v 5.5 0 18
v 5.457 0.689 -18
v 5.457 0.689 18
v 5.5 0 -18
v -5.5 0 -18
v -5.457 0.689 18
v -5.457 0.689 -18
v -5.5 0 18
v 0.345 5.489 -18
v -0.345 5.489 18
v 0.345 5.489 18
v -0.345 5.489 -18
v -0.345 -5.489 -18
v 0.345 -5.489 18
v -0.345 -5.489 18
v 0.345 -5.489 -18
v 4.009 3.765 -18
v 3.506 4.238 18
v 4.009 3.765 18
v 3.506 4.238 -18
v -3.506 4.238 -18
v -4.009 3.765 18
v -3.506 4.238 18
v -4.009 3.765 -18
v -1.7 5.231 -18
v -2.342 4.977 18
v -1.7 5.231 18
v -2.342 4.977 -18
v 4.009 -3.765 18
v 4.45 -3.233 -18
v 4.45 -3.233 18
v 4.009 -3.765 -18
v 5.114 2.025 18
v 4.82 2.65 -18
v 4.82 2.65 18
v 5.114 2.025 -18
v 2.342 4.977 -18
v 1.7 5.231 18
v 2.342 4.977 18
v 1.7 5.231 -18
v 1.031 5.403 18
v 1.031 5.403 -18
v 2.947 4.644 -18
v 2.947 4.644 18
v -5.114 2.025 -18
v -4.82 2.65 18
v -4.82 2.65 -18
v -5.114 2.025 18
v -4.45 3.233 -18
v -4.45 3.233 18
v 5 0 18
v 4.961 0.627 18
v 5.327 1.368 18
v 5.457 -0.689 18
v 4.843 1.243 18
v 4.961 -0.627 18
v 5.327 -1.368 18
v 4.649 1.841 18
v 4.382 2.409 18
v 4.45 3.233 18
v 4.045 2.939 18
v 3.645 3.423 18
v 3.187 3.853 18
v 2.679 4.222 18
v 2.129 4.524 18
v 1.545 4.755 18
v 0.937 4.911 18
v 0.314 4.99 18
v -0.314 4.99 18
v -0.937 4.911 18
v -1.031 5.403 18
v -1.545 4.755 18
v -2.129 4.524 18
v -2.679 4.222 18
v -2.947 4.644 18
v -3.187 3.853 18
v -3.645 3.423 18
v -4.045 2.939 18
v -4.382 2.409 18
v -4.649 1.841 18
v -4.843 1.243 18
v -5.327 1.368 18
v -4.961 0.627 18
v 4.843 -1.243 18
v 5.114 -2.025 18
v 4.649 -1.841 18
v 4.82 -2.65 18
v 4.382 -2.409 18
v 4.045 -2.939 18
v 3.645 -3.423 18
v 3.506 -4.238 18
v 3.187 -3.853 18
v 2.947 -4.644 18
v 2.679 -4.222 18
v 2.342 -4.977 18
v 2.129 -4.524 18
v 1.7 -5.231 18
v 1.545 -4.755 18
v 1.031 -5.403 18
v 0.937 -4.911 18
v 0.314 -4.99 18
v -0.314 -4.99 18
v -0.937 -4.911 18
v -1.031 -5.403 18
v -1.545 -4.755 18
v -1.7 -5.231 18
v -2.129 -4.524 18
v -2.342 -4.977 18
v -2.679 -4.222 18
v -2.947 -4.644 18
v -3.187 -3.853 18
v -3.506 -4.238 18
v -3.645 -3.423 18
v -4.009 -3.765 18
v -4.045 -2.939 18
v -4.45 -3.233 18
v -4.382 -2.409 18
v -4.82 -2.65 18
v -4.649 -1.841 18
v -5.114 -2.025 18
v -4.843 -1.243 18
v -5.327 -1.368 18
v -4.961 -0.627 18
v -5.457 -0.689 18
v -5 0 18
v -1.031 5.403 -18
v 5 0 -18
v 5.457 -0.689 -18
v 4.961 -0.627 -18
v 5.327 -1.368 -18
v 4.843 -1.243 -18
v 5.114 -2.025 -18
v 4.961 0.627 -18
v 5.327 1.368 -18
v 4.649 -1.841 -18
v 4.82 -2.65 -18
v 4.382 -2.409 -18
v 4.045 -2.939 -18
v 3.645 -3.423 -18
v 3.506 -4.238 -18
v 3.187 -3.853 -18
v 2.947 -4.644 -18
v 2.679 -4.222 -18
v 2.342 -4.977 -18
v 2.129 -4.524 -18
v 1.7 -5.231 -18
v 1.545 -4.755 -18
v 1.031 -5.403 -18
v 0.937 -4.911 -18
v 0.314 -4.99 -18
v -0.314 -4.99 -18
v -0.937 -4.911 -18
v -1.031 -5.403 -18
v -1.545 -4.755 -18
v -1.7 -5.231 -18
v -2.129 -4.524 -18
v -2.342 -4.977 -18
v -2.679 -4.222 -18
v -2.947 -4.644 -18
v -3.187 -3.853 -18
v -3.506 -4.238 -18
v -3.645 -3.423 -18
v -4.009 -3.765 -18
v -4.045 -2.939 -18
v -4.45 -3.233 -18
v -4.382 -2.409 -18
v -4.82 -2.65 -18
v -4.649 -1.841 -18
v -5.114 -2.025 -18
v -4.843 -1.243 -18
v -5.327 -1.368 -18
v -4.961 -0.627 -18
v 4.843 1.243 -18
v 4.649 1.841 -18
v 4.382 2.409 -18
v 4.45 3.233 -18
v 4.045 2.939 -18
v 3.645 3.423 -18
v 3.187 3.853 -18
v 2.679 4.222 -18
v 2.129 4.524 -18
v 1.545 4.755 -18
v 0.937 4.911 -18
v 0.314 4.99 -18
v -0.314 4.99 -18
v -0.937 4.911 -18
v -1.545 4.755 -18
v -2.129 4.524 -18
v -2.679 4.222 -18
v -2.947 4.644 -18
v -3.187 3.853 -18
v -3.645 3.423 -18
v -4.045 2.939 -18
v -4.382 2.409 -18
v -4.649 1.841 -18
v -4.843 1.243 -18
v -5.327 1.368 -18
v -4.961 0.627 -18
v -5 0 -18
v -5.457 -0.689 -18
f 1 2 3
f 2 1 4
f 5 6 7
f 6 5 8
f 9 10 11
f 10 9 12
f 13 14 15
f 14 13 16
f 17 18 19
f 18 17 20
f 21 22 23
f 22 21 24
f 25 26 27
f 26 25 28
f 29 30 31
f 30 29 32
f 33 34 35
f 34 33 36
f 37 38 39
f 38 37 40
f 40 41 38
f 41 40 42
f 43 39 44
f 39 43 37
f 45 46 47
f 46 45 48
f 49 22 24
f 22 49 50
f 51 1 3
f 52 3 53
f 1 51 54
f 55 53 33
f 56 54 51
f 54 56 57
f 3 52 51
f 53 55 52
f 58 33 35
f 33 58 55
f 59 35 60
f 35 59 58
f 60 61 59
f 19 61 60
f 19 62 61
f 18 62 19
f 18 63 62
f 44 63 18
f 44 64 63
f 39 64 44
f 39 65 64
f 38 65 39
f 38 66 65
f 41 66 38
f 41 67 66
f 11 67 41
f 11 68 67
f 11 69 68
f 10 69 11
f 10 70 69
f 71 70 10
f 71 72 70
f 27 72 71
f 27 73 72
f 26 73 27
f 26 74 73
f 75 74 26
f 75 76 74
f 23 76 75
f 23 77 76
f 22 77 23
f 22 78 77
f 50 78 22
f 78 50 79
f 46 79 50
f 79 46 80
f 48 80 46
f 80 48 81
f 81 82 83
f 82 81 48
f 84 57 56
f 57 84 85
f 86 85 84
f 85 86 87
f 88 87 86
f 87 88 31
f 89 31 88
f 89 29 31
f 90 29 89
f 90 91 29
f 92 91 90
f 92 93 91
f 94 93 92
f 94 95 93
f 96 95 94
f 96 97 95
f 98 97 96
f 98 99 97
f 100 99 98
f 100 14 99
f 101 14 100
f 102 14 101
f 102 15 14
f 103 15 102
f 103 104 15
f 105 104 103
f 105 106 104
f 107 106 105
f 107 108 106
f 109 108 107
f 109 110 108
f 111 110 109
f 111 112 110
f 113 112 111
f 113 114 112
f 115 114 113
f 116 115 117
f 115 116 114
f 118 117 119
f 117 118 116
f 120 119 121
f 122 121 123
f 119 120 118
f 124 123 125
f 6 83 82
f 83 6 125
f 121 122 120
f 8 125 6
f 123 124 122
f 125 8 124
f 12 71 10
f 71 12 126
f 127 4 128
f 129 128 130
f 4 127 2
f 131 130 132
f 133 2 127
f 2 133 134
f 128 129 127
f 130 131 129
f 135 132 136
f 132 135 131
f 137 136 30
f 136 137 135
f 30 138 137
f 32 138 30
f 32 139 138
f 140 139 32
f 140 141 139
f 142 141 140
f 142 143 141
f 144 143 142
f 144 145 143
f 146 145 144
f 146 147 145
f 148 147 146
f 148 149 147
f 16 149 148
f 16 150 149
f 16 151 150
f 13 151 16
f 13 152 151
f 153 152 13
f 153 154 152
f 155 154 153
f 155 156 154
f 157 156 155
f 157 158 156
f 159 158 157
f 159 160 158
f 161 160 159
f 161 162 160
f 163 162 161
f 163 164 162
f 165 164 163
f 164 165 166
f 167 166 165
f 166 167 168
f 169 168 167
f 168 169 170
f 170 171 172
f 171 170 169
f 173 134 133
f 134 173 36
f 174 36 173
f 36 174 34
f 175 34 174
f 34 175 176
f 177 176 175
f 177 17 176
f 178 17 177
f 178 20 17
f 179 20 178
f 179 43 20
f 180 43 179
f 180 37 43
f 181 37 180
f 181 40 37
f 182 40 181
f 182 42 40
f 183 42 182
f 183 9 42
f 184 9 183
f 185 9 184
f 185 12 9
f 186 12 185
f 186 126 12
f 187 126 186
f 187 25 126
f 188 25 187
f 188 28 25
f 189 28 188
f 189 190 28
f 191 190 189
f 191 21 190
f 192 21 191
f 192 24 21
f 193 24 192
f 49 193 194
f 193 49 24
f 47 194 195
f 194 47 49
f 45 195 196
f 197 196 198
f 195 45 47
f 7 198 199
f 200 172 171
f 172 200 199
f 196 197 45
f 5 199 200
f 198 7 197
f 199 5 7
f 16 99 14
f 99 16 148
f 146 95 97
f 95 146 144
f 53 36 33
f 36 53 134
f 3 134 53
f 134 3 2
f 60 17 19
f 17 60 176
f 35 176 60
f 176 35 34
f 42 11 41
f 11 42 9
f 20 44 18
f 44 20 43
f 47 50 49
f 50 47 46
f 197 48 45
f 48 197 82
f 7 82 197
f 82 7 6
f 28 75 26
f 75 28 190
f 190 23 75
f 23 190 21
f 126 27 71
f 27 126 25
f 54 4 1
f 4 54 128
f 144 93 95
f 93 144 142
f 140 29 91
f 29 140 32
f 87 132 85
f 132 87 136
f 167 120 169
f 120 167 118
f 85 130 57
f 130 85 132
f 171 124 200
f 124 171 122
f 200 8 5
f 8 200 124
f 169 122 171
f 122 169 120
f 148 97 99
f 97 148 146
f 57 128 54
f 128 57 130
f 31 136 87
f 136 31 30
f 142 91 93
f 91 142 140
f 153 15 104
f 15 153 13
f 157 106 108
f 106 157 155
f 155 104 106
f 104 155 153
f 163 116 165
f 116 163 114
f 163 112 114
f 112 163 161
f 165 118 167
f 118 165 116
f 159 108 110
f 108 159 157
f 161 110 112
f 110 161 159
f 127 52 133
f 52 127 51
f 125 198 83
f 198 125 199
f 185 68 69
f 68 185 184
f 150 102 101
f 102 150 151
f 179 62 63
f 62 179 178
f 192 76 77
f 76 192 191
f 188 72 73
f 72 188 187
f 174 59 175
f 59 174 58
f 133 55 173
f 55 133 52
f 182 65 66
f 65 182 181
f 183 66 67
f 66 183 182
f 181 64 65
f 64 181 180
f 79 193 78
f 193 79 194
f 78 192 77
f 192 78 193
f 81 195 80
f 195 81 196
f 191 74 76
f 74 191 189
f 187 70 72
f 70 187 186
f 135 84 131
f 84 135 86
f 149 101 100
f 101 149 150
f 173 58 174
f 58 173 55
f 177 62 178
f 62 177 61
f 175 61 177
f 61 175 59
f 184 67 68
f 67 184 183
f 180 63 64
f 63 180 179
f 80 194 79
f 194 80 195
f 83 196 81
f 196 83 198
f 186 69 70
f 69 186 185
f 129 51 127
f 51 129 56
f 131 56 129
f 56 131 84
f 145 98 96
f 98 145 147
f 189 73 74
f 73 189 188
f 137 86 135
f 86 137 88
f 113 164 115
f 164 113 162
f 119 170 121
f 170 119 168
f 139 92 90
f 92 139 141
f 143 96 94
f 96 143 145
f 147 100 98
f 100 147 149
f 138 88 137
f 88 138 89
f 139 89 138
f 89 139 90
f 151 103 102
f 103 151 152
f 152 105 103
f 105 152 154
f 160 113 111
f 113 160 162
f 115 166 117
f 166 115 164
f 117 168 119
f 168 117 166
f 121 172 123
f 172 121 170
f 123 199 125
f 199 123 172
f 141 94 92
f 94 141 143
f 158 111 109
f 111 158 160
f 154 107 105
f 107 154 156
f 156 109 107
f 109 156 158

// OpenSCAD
$fn = 50;


difference() {
	union() {
		translate(v = [0, 0, -18.0000000000]) {
			cylinder(h = 36, r = 5.5000000000);
		}
	}
	union() {
		translate(v = [0, 0, -100.0000000000]) {
			cylinder(h = 200, r = 5.0000000000);
		}
	}
}
